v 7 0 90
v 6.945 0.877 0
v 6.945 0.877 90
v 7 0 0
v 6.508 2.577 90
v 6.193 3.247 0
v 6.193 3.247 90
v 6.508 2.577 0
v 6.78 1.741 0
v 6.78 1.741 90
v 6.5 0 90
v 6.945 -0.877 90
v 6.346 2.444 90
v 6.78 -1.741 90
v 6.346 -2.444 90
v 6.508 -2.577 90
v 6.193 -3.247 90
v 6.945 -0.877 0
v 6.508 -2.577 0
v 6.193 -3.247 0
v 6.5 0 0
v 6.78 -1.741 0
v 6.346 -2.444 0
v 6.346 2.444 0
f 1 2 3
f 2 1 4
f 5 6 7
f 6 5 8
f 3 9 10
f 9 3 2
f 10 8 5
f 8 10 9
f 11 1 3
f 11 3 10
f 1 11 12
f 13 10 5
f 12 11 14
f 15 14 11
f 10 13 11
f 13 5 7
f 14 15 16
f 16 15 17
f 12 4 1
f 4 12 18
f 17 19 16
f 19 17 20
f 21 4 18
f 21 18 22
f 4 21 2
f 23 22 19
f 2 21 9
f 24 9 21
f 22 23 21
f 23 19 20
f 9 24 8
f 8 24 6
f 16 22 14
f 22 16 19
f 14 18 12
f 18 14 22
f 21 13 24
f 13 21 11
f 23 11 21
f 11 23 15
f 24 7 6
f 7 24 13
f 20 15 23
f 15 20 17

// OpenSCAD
$fn = 50;


difference() {
	union() {
		cylinder(h = 90, r = 7.0000000000);
		translate(v = [-16.0000000000, 0, 0]) {
			cylinder(h = 90, r = 7.0000000000);
		}
	}
	union() {
		cylinder(h = 90, r = 3.2500000000);
		cylinder(h = 90, r = 1.8000000000);
		cylinder(h = 90, r = 1.8000000000);
		cylinder(h = 90, r = 1.8000000000);
		translate(v = [-20.5000000000, 0, 0]) {
			hull() {
				translate(v = [-3.7500000000, 0.0000000000, 0]) {
					cylinder(h = 90, r = 10.5000000000);
				}
				translate(v = [3.7500000000, 0.0000000000, 0]) {
					cylinder(h = 90, r = 10.5000000000);
				}
				translate(v = [-3.7500000000, -0.0000000000, 0]) {
					cylinder(h = 90, r = 10.5000000000);
				}
				translate(v = [3.7500000000, -0.0000000000, 0]) {
					cylinder(h = 90, r = 10.5000000000);
				}
			}
		}
		translate(v = [-13.0000000000, 0, 0.0000000000]) {
			cylinder(h = 90, r = 19.5000000000);
		}
	}
}
